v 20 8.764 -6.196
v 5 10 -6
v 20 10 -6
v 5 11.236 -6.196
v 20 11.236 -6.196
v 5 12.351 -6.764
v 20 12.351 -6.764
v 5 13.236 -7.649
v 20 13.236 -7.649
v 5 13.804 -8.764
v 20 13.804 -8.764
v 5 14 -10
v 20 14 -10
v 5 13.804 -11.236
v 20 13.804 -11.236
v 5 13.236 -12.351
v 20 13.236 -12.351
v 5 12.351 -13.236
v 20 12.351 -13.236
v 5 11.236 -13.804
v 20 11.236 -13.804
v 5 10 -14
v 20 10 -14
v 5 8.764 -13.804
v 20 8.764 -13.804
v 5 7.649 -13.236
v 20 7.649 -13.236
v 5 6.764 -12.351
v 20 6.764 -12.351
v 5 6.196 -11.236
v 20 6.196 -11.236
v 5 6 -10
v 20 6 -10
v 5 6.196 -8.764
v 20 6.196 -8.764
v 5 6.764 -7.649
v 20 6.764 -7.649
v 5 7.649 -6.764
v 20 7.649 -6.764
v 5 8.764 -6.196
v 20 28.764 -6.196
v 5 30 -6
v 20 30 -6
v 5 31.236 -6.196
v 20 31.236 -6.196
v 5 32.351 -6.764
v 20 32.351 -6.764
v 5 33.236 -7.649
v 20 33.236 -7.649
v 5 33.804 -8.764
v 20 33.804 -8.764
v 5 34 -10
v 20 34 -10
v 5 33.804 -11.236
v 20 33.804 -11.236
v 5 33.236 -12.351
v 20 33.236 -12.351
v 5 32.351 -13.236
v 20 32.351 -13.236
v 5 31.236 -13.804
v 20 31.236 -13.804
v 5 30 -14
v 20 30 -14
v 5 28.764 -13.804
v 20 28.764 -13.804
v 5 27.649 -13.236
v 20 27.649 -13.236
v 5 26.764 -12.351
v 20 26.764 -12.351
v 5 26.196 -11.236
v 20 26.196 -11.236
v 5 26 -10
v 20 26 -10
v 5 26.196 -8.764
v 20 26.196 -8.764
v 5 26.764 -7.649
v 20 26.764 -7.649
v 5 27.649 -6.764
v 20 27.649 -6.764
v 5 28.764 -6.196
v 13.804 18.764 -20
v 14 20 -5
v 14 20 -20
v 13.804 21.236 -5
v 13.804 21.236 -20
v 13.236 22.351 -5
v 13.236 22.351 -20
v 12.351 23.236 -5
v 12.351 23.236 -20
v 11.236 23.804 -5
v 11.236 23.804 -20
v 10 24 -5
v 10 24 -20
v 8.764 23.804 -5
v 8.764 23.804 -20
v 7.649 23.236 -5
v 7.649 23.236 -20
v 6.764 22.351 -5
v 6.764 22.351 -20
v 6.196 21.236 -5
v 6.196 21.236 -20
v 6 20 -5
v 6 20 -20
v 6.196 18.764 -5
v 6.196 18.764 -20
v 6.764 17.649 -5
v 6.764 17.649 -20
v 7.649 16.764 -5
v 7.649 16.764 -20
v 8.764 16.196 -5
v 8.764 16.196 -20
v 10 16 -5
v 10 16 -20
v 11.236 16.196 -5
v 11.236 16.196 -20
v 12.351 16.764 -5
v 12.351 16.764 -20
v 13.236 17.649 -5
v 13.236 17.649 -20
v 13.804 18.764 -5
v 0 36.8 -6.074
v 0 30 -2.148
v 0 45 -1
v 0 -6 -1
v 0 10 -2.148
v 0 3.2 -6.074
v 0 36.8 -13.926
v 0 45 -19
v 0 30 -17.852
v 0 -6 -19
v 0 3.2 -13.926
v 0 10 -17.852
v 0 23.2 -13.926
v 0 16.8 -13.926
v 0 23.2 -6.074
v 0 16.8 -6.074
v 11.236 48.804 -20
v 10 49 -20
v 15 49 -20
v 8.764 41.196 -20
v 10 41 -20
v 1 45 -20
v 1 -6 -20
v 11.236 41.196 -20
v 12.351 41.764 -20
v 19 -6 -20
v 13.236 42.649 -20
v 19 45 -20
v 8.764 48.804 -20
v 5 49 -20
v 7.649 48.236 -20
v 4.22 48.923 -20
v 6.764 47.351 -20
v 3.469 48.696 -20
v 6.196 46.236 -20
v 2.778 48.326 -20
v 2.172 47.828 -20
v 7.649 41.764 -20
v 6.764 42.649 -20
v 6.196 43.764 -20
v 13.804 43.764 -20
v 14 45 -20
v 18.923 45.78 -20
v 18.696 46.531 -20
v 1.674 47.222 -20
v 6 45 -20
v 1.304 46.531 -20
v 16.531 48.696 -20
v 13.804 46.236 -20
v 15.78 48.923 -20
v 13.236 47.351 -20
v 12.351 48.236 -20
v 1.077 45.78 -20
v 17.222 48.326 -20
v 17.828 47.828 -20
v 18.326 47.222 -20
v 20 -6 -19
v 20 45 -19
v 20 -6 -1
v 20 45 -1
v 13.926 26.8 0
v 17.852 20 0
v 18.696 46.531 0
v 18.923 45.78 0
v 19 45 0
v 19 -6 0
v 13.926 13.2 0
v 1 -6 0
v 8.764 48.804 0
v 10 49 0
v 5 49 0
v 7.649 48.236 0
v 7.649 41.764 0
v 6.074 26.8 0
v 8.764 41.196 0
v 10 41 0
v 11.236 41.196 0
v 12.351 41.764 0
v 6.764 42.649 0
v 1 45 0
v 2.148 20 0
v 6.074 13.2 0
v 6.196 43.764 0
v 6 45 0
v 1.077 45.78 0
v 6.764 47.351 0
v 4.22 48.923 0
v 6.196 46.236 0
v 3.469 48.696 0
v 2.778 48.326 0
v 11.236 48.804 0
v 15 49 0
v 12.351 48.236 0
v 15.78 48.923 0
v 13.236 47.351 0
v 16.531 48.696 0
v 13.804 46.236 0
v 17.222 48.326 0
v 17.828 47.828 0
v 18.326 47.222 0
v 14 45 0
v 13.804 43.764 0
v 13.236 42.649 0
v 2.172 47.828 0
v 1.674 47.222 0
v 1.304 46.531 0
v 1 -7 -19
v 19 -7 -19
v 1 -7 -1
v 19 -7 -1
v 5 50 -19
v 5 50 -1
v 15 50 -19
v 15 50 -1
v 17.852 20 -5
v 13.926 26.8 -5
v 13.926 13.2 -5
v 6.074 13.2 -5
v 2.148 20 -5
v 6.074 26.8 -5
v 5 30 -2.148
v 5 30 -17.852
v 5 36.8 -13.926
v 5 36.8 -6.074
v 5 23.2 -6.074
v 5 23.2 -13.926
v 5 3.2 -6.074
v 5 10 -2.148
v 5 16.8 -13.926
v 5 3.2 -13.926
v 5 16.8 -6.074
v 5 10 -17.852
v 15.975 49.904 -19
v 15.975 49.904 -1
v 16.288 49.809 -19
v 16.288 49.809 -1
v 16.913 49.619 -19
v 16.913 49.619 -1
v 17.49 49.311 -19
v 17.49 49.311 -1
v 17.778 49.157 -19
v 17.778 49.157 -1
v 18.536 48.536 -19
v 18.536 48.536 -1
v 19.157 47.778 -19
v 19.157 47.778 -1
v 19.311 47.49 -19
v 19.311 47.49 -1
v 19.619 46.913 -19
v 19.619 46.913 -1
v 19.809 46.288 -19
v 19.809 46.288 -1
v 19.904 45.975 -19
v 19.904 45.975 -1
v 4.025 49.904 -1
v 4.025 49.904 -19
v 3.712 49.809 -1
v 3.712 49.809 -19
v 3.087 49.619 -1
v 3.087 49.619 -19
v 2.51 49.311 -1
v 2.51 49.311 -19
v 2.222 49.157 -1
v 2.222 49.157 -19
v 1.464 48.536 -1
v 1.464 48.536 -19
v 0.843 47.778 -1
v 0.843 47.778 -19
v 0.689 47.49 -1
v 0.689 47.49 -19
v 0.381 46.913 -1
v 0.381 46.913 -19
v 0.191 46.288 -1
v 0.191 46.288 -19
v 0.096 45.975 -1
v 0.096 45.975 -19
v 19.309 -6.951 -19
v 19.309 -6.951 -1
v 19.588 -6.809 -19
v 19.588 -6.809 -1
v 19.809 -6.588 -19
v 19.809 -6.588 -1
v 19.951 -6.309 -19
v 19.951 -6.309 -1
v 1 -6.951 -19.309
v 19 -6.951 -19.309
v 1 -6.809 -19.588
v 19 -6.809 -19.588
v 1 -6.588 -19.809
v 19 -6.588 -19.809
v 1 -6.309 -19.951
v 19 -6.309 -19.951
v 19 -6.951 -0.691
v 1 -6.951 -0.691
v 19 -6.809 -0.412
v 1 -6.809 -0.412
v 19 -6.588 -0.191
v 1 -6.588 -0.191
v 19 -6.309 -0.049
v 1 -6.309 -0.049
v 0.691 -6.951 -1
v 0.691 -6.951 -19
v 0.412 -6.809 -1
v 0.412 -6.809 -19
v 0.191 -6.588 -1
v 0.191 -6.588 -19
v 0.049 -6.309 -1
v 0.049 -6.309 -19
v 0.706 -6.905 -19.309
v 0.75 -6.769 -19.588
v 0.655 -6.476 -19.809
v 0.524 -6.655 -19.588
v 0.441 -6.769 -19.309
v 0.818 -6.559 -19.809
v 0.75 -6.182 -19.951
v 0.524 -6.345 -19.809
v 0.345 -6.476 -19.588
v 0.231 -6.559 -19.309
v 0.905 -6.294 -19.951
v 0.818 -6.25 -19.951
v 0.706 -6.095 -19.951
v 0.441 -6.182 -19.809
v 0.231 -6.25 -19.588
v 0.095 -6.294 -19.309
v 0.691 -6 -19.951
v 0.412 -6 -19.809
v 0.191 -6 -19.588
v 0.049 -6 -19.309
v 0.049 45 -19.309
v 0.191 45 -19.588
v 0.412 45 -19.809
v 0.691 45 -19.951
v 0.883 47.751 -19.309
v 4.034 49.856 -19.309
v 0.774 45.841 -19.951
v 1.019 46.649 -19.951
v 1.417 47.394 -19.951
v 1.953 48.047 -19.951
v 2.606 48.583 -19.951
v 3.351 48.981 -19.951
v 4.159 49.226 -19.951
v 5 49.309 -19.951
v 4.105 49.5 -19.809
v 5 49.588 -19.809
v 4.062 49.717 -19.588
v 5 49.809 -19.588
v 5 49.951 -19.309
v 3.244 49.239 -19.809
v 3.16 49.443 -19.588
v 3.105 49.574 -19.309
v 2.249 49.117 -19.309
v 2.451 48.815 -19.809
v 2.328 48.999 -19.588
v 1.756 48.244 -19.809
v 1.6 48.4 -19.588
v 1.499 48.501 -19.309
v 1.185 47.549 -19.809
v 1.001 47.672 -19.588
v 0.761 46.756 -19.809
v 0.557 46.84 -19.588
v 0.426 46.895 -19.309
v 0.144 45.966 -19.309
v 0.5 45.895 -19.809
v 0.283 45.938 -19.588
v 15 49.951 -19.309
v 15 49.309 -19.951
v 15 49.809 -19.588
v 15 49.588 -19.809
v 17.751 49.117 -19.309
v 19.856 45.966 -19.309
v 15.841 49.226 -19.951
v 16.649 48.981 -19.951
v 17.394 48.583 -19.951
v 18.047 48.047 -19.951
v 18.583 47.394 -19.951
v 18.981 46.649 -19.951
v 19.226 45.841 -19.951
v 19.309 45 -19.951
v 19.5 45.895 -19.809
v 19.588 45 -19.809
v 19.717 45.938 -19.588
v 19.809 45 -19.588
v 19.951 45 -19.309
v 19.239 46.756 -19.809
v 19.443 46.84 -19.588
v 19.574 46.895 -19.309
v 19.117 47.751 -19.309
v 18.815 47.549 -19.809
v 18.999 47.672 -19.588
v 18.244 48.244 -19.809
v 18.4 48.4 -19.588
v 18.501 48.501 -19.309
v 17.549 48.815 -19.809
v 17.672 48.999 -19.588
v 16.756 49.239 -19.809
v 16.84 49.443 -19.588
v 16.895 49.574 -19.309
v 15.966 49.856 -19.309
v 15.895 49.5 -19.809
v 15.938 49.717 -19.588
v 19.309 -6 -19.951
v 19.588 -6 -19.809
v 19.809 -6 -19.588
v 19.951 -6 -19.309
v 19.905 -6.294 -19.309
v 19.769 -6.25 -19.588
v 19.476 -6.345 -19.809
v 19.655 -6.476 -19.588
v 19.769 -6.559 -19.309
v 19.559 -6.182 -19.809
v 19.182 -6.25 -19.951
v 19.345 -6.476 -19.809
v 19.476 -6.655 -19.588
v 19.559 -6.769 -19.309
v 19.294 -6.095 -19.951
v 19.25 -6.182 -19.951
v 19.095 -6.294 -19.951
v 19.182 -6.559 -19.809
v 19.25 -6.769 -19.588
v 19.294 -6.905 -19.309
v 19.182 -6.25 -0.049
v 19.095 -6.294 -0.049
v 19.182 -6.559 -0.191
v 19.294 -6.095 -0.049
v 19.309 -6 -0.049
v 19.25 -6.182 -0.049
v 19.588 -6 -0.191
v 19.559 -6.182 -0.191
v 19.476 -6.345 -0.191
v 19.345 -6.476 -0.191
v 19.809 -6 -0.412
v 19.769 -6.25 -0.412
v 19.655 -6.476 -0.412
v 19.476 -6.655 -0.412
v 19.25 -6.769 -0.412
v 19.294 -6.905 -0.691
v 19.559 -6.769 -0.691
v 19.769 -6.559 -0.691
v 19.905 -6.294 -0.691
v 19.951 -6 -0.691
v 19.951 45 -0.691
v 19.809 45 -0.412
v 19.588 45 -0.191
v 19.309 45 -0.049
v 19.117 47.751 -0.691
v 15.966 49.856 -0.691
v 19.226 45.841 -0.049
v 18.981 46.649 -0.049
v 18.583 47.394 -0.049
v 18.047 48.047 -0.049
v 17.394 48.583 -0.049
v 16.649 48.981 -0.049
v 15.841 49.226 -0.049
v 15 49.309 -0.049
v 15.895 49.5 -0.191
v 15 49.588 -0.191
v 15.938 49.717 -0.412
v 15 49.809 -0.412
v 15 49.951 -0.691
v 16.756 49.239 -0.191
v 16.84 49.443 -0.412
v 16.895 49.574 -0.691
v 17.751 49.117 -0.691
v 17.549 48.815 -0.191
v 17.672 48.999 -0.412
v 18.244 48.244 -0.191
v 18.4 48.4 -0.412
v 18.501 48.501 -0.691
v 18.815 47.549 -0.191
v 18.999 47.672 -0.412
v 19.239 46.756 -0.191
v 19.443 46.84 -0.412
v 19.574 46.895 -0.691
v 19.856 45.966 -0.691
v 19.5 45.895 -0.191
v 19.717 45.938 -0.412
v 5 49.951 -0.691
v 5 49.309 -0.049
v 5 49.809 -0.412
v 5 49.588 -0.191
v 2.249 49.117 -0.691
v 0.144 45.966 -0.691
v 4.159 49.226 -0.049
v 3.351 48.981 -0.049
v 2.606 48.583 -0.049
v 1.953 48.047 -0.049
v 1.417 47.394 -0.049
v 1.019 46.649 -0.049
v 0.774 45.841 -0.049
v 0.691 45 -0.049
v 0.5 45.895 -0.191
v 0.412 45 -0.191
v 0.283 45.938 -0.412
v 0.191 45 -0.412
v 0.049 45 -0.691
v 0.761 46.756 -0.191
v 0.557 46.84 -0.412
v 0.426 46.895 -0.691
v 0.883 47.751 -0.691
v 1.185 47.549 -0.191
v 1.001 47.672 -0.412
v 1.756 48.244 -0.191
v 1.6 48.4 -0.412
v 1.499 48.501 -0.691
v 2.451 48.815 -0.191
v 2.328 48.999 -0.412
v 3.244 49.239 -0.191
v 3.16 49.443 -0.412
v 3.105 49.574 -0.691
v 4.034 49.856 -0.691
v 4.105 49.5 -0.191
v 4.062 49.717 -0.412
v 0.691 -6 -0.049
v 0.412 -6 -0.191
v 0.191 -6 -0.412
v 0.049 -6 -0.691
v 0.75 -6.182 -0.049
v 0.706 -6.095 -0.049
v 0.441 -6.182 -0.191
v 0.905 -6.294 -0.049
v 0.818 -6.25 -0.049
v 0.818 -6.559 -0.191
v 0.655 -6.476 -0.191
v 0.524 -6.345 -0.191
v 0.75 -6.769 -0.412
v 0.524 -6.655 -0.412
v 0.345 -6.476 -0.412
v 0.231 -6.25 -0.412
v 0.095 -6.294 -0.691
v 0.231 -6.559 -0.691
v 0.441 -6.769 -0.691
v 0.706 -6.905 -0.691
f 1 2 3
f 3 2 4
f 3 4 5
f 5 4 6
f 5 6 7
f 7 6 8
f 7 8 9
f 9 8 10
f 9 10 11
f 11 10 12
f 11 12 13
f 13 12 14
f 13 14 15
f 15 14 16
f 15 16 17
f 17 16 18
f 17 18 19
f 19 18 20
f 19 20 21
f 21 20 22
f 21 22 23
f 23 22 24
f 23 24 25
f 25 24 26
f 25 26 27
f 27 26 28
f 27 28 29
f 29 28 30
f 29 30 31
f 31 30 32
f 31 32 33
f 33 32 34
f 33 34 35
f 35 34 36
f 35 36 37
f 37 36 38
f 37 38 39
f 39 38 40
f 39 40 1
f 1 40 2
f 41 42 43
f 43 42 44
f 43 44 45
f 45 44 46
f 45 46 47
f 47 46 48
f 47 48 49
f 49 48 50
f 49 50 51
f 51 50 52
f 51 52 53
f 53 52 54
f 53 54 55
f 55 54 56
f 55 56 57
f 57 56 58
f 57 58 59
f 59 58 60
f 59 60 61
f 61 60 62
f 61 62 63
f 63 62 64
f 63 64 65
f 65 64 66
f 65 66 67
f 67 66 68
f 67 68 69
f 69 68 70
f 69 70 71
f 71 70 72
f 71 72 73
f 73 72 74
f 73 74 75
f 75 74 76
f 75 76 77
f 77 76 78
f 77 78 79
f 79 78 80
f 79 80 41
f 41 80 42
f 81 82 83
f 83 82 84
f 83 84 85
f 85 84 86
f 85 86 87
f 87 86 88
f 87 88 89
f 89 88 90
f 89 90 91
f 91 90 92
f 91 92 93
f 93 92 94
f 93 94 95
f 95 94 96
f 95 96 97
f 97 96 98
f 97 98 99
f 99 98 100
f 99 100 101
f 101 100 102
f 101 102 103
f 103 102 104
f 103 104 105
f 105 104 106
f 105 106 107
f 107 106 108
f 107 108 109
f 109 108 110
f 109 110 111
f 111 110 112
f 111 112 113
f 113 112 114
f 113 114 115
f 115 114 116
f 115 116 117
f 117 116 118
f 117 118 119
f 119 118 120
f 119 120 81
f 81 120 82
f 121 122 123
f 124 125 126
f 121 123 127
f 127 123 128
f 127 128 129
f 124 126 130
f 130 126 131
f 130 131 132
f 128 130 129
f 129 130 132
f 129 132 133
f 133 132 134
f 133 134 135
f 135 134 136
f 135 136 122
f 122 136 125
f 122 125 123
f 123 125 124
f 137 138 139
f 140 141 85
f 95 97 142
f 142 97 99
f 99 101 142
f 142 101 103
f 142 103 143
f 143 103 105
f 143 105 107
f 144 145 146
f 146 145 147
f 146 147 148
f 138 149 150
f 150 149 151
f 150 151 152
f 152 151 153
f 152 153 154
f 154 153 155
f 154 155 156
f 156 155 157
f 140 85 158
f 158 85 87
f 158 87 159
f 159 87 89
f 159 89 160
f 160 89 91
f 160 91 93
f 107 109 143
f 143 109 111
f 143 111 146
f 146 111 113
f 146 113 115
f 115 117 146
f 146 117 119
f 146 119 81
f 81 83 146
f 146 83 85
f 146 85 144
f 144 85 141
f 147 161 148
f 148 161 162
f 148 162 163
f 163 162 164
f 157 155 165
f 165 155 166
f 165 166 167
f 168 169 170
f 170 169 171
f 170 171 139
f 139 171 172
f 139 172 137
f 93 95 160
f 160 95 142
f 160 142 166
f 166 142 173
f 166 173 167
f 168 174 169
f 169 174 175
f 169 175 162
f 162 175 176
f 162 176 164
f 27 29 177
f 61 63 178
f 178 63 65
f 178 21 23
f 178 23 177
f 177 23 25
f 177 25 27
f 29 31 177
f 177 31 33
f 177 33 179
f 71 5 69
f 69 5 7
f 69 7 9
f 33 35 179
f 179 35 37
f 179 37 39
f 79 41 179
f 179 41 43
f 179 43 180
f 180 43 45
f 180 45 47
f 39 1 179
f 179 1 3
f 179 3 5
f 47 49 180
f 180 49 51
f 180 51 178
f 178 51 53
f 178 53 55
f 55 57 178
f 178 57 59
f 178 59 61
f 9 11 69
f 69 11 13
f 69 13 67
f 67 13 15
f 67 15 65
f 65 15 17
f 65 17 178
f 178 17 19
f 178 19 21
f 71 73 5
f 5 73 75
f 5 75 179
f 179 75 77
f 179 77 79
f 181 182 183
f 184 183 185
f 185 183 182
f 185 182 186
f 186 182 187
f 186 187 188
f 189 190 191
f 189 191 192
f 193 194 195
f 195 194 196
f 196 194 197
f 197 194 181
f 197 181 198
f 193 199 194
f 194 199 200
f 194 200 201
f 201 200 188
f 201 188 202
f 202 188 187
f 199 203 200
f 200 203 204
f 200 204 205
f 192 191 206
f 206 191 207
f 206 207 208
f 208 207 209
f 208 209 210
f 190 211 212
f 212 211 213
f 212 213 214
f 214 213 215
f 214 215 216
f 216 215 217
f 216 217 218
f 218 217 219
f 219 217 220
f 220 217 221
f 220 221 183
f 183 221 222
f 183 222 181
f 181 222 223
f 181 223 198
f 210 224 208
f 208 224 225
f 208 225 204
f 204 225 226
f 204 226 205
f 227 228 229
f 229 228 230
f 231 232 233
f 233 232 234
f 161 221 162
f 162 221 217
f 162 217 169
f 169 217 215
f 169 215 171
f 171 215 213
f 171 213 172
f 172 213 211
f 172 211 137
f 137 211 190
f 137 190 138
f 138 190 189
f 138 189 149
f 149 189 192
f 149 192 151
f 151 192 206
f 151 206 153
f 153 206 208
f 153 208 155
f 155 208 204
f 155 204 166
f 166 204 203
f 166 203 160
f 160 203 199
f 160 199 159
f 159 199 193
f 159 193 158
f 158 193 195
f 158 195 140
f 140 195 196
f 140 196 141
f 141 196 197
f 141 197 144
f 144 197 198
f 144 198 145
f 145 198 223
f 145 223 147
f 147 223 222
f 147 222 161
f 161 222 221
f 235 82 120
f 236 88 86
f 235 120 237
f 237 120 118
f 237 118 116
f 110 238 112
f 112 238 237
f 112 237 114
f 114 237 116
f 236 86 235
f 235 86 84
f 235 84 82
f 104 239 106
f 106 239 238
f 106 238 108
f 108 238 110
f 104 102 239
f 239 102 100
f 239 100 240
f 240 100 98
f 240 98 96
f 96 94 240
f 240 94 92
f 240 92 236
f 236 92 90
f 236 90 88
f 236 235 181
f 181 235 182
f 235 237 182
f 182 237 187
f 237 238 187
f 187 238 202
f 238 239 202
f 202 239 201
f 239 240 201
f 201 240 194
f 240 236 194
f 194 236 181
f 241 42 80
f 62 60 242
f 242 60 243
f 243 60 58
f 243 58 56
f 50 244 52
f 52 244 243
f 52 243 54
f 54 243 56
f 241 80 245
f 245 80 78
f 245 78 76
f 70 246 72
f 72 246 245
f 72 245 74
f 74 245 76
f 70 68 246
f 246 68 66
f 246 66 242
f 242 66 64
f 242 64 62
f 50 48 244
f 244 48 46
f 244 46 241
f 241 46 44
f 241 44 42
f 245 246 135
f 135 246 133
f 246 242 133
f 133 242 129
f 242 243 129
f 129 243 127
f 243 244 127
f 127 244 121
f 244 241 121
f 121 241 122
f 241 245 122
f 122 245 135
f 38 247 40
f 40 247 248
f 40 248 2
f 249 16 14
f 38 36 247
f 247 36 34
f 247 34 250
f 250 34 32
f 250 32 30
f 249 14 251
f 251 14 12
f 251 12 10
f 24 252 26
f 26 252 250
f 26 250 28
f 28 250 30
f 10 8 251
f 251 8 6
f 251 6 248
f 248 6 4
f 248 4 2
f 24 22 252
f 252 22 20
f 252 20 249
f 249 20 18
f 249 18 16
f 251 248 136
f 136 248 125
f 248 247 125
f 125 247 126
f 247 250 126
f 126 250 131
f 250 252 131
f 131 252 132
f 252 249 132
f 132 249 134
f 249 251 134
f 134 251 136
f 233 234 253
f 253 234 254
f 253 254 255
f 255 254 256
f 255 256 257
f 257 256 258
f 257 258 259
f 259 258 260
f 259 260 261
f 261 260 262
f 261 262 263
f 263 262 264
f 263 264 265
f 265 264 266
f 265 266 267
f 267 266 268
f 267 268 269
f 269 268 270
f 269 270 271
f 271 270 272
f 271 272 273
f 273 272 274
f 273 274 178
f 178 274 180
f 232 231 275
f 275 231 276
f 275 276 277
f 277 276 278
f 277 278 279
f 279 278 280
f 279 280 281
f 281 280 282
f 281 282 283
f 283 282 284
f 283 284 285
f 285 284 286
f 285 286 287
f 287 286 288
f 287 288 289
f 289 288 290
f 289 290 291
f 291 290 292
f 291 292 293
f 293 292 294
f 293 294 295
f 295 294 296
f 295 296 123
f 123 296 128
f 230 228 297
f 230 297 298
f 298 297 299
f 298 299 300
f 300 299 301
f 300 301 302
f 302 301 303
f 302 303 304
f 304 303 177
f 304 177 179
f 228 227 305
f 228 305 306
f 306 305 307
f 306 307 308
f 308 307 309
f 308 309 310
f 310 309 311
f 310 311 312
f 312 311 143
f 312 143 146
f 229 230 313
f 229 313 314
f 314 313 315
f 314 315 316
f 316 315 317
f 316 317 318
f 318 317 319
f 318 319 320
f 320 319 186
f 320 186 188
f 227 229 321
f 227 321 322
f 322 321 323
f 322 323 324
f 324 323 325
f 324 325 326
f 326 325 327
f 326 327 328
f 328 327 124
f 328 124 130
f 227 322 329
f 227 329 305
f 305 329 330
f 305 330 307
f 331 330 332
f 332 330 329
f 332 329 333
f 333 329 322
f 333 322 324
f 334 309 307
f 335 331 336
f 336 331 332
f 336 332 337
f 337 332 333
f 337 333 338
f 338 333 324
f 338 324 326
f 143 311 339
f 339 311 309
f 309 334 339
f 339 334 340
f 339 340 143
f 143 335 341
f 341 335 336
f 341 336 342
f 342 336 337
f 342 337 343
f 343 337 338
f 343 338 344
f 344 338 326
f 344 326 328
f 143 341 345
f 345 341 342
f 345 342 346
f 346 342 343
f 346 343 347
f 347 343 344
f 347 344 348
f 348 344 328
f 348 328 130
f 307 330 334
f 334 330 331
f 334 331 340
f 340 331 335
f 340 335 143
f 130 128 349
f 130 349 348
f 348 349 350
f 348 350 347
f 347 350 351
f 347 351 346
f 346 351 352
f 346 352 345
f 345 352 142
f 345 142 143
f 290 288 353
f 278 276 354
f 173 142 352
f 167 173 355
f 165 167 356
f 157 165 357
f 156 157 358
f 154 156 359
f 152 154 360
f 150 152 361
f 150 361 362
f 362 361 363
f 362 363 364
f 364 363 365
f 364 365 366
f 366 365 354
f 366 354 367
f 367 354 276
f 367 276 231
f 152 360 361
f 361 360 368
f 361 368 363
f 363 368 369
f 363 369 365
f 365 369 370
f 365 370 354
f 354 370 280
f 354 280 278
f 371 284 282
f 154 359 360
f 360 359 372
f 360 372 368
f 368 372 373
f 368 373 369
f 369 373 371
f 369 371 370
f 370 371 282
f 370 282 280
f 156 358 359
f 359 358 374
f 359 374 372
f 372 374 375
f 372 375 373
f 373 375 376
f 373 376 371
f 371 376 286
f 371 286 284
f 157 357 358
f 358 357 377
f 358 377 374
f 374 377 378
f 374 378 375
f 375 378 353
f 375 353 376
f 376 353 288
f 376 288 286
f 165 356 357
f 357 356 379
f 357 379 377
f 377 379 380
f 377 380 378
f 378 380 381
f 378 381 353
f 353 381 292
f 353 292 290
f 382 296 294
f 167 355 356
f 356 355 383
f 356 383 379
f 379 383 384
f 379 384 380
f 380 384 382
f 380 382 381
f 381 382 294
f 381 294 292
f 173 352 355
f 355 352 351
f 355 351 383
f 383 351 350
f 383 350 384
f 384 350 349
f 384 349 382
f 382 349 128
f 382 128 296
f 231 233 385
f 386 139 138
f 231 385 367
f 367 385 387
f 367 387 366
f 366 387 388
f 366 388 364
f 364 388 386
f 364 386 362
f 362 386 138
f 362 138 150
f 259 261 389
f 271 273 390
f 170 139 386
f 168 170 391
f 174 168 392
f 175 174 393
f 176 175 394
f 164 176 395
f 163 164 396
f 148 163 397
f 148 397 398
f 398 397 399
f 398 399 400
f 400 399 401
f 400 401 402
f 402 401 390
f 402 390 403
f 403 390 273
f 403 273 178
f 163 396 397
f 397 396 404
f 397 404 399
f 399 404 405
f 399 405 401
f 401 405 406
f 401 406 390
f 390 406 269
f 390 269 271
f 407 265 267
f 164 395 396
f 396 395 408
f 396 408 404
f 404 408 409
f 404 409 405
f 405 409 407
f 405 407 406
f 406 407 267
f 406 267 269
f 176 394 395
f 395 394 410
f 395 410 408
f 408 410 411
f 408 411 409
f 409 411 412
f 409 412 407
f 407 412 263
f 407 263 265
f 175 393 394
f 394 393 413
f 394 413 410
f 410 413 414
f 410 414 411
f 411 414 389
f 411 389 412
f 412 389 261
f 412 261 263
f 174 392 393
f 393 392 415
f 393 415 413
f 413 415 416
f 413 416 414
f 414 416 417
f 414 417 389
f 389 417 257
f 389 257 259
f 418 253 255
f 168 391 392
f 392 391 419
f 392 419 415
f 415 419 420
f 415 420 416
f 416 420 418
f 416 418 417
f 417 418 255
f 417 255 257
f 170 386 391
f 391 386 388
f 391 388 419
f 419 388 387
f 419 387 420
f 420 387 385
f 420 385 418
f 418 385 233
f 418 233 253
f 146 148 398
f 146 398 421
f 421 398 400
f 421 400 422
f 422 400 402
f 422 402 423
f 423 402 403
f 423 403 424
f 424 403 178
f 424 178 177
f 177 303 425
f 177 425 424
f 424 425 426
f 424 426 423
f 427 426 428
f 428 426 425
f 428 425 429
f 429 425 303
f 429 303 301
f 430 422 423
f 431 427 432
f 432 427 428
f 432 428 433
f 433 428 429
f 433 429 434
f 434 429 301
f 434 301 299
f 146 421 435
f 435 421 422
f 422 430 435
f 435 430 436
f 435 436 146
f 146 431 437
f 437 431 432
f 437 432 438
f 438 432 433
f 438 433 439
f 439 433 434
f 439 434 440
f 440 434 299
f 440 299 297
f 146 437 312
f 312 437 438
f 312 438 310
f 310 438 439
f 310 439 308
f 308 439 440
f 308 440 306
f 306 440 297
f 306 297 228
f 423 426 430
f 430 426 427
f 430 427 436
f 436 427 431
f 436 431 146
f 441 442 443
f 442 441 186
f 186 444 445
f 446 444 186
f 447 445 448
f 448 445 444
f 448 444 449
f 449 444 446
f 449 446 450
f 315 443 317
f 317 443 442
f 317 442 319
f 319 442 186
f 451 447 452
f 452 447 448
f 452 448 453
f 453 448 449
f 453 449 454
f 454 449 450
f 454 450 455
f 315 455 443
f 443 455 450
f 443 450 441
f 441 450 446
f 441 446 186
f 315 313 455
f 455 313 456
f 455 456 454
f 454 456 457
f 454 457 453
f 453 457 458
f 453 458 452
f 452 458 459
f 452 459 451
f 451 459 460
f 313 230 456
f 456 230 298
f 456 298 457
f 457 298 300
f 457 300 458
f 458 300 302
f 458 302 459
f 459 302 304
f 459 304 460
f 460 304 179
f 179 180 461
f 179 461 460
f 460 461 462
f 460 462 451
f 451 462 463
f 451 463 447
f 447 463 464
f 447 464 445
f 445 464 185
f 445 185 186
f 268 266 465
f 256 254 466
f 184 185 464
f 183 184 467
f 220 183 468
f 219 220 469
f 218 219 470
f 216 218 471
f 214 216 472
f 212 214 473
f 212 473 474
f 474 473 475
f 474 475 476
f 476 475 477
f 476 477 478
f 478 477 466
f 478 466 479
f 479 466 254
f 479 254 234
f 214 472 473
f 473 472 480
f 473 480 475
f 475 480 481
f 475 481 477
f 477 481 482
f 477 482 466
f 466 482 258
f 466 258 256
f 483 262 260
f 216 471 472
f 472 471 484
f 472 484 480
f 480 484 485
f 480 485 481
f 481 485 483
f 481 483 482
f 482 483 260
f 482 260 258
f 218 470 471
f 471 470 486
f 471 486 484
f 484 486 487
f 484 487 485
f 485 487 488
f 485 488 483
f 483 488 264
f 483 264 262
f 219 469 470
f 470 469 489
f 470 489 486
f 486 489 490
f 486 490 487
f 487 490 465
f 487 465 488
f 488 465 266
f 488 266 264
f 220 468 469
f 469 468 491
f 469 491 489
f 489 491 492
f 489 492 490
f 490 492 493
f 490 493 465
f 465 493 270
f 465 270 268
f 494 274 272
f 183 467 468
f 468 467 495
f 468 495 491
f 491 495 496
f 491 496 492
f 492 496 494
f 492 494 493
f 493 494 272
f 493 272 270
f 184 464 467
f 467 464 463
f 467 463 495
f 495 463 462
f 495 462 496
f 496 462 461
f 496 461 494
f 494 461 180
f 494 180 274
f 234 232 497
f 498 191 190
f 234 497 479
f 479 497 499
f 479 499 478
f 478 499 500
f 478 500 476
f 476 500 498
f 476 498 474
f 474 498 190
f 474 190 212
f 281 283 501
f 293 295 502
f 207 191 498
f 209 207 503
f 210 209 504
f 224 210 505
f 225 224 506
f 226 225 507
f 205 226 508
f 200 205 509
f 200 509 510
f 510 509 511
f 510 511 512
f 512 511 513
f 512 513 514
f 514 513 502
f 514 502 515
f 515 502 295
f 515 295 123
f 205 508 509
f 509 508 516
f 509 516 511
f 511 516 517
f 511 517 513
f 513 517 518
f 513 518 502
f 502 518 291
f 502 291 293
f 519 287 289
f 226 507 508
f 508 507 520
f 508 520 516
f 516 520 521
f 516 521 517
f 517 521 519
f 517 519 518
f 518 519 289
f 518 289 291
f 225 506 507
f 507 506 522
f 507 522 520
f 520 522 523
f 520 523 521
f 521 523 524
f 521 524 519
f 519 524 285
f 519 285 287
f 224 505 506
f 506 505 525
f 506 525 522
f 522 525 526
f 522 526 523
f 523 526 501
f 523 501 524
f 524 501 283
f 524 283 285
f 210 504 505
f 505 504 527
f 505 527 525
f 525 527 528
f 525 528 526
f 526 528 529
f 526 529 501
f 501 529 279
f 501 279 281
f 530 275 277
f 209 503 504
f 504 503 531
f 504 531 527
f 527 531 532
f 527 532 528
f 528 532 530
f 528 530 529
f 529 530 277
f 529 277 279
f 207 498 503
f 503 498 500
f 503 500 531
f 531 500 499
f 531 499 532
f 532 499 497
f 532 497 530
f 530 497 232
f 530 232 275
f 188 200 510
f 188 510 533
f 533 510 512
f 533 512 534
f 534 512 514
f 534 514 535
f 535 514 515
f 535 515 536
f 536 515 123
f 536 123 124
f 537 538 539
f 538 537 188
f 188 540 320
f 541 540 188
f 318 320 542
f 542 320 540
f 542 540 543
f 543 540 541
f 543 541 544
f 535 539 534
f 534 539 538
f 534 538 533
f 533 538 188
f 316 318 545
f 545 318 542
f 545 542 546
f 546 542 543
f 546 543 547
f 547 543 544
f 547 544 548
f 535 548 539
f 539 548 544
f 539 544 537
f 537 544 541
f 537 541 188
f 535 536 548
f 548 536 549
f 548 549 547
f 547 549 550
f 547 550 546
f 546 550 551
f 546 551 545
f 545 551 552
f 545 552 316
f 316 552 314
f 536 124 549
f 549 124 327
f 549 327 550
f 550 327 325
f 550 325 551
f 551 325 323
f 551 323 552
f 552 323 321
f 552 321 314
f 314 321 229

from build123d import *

# Parameters (mm, degrees)
SALIENTE_EXTRUIR1_DEPTH      = 50
SALIENTE_EXTRUIR1_DEPTH_BACK = 7
CROQUIS1_W                   = 20
CROQUIS1_H                   = 20
CROQUIS2_R                   = 4
CORTAR_EXTRUIR1_DEPTH        = 58.445626465
CORTAR_EXTRUIR2_DEPTH        = 5
CROQUIS4_R                   = 4
CORTAR_EXTRUIR3_DEPTH        = 58.445626465
CORTAR_EXTRUIR4_DEPTH        = 5
REDONDEO1_R                  = 5
REDONDEO2_R                  = 1
REDONDEO3_R                  = 1


with BuildPart() as part:
    # Croquis1 → Saliente-Extruir1 (new, two sides: drawn at the far end of the back side and taken through both)
    with BuildSketch(Plane(origin=(0, 0, 0), x_dir=(1, 0, 0), z_dir=(0, 1, 0)).offset(-SALIENTE_EXTRUIR1_DEPTH_BACK)):
        with Locations((10, 10)):
            Rectangle(CROQUIS1_W, CROQUIS1_H)
    extrude(amount=SALIENTE_EXTRUIR1_DEPTH + SALIENTE_EXTRUIR1_DEPTH_BACK)

    # Croquis2 → Cortar-Extruir1 (cut, through all)
    with BuildSketch(Plane.XY):
        with Locations((10, 45)):
            Circle(CROQUIS2_R)
        with Locations((10, 20)):
            Circle(CROQUIS2_R)
    extrude(amount=-CORTAR_EXTRUIR1_DEPTH, mode=Mode.SUBTRACT)

    # Croquis3 → Cortar-Extruir2 (cut)
    with BuildSketch(Plane.XY):
        Polygon((13.92598183, 26.8), (6.07401817, 26.8), (2.148036339, 20), (6.07401817, 13.2), (13.92598183, 13.2), (17.851963661, 20), align=None)
    extrude(amount=-CORTAR_EXTRUIR2_DEPTH, mode=Mode.SUBTRACT)

    # Croquis4 → Cortar-Extruir3 (cut, through all)
    with BuildSketch(Plane.ZY):
        with Locations((-10, 30)):
            Circle(CROQUIS4_R)
        with Locations((-10, 10)):
            Circle(CROQUIS4_R)
    extrude(amount=-CORTAR_EXTRUIR3_DEPTH, mode=Mode.SUBTRACT)

    # Croquis5 → Cortar-Extruir4 (cut)
    with BuildSketch(Plane.ZY):
        Polygon((-6.07401817, 23.2), (-2.148036339, 30), (-6.07401817, 36.8), (-13.92598183, 36.8), (-17.851963661, 30), (-13.92598183, 23.2), align=None)
        Polygon((-6.07401817, 16.8), (-13.92598183, 16.8), (-17.851963661, 10), (-13.92598183, 3.2), (-6.07401817, 3.2), (-2.148036339, 10), align=None)
    extrude(amount=-CORTAR_EXTRUIR4_DEPTH, mode=Mode.SUBTRACT)

    # Redondeo1
    redondeo1_edges = [part.edges().sort_by_distance(p)[0] for p in [
        (0, 50, -10),
        (20, 50, -10),
    ]]
    fillet(redondeo1_edges, radius=REDONDEO1_R)

    # Redondeo2
    redondeo2_edges = [part.edges().sort_by_distance(p)[0] for p in [
        (20, -7, -10),
        (10, -7, -20),
        (0, -7, -10),
        (10, -7, 0),
    ]]
    fillet(redondeo2_edges, radius=REDONDEO2_R)

    # Redondeo3
    # the kernel refuses this fillet: 1 mm, written as the material it takes off along each edge
    with BuildSketch(Plane(origin=(19, -6, -19), x_dir=(0, 0, -1), z_dir=(1, 0, 0))) as redondeo3_piece_1_section:
        Polygon((0, 0), (REDONDEO3_R, 0), (REDONDEO3_R, -REDONDEO3_R), (0, -REDONDEO3_R), align=None)
    redondeo3_piece_1 = extrude(amount=REDONDEO3_R, mode=Mode.PRIVATE)
    redondeo3_piece_1 = redondeo3_piece_1 - Plane(origin=(19, -6, -19), x_dir=(0, 0.7071067811865475, 0.7071067811865475), z_dir=(1, 0, 0)) * Sphere(REDONDEO3_R, mode=Mode.PRIVATE)
    add(redondeo3_piece_1, mode=Mode.SUBTRACT)
    with BuildSketch(Plane(origin=(19, -6, -1), x_dir=(1, 0, 0), z_dir=(0, 0, 1))) as redondeo3_piece_2_section:
        Polygon((0, 0), (REDONDEO3_R, 0), (REDONDEO3_R, -REDONDEO3_R), (0, -REDONDEO3_R), align=None)
    redondeo3_piece_2 = extrude(amount=REDONDEO3_R, mode=Mode.PRIVATE)
    redondeo3_piece_2 = redondeo3_piece_2 - Plane(origin=(19, -6, -1), x_dir=(-0.7071067811865475, 0.7071067811865475, 0), z_dir=(0, 0, 1)) * Sphere(REDONDEO3_R, mode=Mode.PRIVATE)
    add(redondeo3_piece_2, mode=Mode.SUBTRACT)
    with BuildSketch(Plane(origin=(1, -6, -19), x_dir=(0, 0, -1), z_dir=(-1, 0, 0))) as redondeo3_piece_3_section:
        Polygon((0, 0), (REDONDEO3_R, 0), (REDONDEO3_R, REDONDEO3_R), (0, REDONDEO3_R), align=None)
    redondeo3_piece_3 = extrude(amount=REDONDEO3_R, mode=Mode.PRIVATE)
    redondeo3_piece_3 = redondeo3_piece_3 - Plane(origin=(1, -6, -19), x_dir=(0, 0.7071067811865475, 0.7071067811865475), z_dir=(-1, 0, 0)) * Sphere(REDONDEO3_R, mode=Mode.PRIVATE)
    add(redondeo3_piece_3, mode=Mode.SUBTRACT)
    with BuildSketch(Plane(origin=(1, -6, -1), x_dir=(-1, 0, 0), z_dir=(0, 0, 1))) as redondeo3_piece_4_section:
        Polygon((0, 0), (REDONDEO3_R, 0), (REDONDEO3_R, REDONDEO3_R), (0, REDONDEO3_R), align=None)
    redondeo3_piece_4 = extrude(amount=REDONDEO3_R, mode=Mode.PRIVATE)
    redondeo3_piece_4 = redondeo3_piece_4 - Plane(origin=(1, -6, -1), x_dir=(0.7071067811865475, 0.7071067811865475, 0), z_dir=(0, 0, 1)) * Sphere(REDONDEO3_R, mode=Mode.PRIVATE)
    add(redondeo3_piece_4, mode=Mode.SUBTRACT)
    with BuildSketch(Plane(origin=(5, 50, 0), x_dir=(0, -1, 0), z_dir=(1, 0, 0))) as redondeo3_piece_5:
        with BuildLine():
            CenterArc((REDONDEO3_R, REDONDEO3_R), REDONDEO3_R, 180, 90)
            Line((0, REDONDEO3_R), (0, 0))
            Line((0, 0), (REDONDEO3_R, 0))
        make_face()
    extrude(amount=10, mode=Mode.SUBTRACT)
    with BuildSketch(Plane(origin=(15, 50, -20), x_dir=(0, 0, 1), z_dir=(-1, 0, 0))) as redondeo3_piece_6:
        with BuildLine():
            CenterArc((REDONDEO3_R, -REDONDEO3_R), REDONDEO3_R, 90, 90)
            Line((0, -REDONDEO3_R), (0, 0))
            Line((0, 0), (REDONDEO3_R, 0))
        make_face()
    extrude(amount=10, mode=Mode.SUBTRACT)
    with BuildSketch(Plane(origin=(5, 45, -20), x_dir=(-1, 0, 0), z_dir=(0, -1, 0))) as redondeo3_piece_7:
        with BuildLine():
            CenterArc((5 - REDONDEO3_R, -REDONDEO3_R), REDONDEO3_R, 0, 90)
            Line((5 - REDONDEO3_R, 0), (5, 0))
            Line((5, 0), (5, -REDONDEO3_R))
        make_face()
    revolve(axis=Axis((5, 45, -20), (0, 0, -1)), revolution_arc=90, mode=Mode.SUBTRACT)
    with BuildSketch(Plane(origin=(15, 45, -20), x_dir=(0, 1, 0), z_dir=(-1, 0, 0))) as redondeo3_piece_8:
        with BuildLine():
            CenterArc((5 - REDONDEO3_R, -REDONDEO3_R), REDONDEO3_R, 0, 90)
            Line((5 - REDONDEO3_R, 0), (5, 0))
            Line((5, 0), (5, -REDONDEO3_R))
        make_face()
    revolve(axis=Axis((15, 45, -20), (0, 0, -1)), revolution_arc=90, mode=Mode.SUBTRACT)
    with BuildSketch(Plane(origin=(5, 45, 0), x_dir=(-1, 0, 0), z_dir=(0, -1, 0))) as redondeo3_piece_9:
        with BuildLine():
            CenterArc((5 - REDONDEO3_R, REDONDEO3_R), REDONDEO3_R, 270, 90)
            Line((5, REDONDEO3_R), (5, 0))
            Line((5, 0), (5 - REDONDEO3_R, 0))
        make_face()
    revolve(axis=Axis((5, 45, 0), (0, 0, -1)), revolution_arc=90, mode=Mode.SUBTRACT)
    with BuildSketch(Plane(origin=(15, 45, 0), x_dir=(0, 1, 0), z_dir=(-1, 0, 0))) as redondeo3_piece_10:
        with BuildLine():
            CenterArc((5 - REDONDEO3_R, REDONDEO3_R), REDONDEO3_R, 270, 90)
            Line((5, REDONDEO3_R), (5, 0))
            Line((5, 0), (5 - REDONDEO3_R, 0))
        make_face()
    revolve(axis=Axis((15, 45, 0), (0, 0, -1)), revolution_arc=90, mode=Mode.SUBTRACT)
    with BuildSketch(Plane(origin=(0, 45, 0), x_dir=(1, 0, 0), z_dir=(0, -1, 0)), Plane(origin=(0, 45, -20), x_dir=(0, 0, 1), z_dir=(0, -1, 0)), Plane(origin=(20, -6, -20), x_dir=(0, 0, 1), z_dir=(0, 1, 0)), Plane(origin=(20, -6, 0), x_dir=(-1, 0, 0), z_dir=(0, 1, 0))) as redondeo3_piece_11:
        with BuildLine():
            CenterArc((REDONDEO3_R, -REDONDEO3_R), REDONDEO3_R, 90, 90)
            Line((0, -REDONDEO3_R), (0, 0))
            Line((0, 0), (REDONDEO3_R, 0))
        make_face()
    extrude(amount=51, mode=Mode.SUBTRACT)


solid = part.part
